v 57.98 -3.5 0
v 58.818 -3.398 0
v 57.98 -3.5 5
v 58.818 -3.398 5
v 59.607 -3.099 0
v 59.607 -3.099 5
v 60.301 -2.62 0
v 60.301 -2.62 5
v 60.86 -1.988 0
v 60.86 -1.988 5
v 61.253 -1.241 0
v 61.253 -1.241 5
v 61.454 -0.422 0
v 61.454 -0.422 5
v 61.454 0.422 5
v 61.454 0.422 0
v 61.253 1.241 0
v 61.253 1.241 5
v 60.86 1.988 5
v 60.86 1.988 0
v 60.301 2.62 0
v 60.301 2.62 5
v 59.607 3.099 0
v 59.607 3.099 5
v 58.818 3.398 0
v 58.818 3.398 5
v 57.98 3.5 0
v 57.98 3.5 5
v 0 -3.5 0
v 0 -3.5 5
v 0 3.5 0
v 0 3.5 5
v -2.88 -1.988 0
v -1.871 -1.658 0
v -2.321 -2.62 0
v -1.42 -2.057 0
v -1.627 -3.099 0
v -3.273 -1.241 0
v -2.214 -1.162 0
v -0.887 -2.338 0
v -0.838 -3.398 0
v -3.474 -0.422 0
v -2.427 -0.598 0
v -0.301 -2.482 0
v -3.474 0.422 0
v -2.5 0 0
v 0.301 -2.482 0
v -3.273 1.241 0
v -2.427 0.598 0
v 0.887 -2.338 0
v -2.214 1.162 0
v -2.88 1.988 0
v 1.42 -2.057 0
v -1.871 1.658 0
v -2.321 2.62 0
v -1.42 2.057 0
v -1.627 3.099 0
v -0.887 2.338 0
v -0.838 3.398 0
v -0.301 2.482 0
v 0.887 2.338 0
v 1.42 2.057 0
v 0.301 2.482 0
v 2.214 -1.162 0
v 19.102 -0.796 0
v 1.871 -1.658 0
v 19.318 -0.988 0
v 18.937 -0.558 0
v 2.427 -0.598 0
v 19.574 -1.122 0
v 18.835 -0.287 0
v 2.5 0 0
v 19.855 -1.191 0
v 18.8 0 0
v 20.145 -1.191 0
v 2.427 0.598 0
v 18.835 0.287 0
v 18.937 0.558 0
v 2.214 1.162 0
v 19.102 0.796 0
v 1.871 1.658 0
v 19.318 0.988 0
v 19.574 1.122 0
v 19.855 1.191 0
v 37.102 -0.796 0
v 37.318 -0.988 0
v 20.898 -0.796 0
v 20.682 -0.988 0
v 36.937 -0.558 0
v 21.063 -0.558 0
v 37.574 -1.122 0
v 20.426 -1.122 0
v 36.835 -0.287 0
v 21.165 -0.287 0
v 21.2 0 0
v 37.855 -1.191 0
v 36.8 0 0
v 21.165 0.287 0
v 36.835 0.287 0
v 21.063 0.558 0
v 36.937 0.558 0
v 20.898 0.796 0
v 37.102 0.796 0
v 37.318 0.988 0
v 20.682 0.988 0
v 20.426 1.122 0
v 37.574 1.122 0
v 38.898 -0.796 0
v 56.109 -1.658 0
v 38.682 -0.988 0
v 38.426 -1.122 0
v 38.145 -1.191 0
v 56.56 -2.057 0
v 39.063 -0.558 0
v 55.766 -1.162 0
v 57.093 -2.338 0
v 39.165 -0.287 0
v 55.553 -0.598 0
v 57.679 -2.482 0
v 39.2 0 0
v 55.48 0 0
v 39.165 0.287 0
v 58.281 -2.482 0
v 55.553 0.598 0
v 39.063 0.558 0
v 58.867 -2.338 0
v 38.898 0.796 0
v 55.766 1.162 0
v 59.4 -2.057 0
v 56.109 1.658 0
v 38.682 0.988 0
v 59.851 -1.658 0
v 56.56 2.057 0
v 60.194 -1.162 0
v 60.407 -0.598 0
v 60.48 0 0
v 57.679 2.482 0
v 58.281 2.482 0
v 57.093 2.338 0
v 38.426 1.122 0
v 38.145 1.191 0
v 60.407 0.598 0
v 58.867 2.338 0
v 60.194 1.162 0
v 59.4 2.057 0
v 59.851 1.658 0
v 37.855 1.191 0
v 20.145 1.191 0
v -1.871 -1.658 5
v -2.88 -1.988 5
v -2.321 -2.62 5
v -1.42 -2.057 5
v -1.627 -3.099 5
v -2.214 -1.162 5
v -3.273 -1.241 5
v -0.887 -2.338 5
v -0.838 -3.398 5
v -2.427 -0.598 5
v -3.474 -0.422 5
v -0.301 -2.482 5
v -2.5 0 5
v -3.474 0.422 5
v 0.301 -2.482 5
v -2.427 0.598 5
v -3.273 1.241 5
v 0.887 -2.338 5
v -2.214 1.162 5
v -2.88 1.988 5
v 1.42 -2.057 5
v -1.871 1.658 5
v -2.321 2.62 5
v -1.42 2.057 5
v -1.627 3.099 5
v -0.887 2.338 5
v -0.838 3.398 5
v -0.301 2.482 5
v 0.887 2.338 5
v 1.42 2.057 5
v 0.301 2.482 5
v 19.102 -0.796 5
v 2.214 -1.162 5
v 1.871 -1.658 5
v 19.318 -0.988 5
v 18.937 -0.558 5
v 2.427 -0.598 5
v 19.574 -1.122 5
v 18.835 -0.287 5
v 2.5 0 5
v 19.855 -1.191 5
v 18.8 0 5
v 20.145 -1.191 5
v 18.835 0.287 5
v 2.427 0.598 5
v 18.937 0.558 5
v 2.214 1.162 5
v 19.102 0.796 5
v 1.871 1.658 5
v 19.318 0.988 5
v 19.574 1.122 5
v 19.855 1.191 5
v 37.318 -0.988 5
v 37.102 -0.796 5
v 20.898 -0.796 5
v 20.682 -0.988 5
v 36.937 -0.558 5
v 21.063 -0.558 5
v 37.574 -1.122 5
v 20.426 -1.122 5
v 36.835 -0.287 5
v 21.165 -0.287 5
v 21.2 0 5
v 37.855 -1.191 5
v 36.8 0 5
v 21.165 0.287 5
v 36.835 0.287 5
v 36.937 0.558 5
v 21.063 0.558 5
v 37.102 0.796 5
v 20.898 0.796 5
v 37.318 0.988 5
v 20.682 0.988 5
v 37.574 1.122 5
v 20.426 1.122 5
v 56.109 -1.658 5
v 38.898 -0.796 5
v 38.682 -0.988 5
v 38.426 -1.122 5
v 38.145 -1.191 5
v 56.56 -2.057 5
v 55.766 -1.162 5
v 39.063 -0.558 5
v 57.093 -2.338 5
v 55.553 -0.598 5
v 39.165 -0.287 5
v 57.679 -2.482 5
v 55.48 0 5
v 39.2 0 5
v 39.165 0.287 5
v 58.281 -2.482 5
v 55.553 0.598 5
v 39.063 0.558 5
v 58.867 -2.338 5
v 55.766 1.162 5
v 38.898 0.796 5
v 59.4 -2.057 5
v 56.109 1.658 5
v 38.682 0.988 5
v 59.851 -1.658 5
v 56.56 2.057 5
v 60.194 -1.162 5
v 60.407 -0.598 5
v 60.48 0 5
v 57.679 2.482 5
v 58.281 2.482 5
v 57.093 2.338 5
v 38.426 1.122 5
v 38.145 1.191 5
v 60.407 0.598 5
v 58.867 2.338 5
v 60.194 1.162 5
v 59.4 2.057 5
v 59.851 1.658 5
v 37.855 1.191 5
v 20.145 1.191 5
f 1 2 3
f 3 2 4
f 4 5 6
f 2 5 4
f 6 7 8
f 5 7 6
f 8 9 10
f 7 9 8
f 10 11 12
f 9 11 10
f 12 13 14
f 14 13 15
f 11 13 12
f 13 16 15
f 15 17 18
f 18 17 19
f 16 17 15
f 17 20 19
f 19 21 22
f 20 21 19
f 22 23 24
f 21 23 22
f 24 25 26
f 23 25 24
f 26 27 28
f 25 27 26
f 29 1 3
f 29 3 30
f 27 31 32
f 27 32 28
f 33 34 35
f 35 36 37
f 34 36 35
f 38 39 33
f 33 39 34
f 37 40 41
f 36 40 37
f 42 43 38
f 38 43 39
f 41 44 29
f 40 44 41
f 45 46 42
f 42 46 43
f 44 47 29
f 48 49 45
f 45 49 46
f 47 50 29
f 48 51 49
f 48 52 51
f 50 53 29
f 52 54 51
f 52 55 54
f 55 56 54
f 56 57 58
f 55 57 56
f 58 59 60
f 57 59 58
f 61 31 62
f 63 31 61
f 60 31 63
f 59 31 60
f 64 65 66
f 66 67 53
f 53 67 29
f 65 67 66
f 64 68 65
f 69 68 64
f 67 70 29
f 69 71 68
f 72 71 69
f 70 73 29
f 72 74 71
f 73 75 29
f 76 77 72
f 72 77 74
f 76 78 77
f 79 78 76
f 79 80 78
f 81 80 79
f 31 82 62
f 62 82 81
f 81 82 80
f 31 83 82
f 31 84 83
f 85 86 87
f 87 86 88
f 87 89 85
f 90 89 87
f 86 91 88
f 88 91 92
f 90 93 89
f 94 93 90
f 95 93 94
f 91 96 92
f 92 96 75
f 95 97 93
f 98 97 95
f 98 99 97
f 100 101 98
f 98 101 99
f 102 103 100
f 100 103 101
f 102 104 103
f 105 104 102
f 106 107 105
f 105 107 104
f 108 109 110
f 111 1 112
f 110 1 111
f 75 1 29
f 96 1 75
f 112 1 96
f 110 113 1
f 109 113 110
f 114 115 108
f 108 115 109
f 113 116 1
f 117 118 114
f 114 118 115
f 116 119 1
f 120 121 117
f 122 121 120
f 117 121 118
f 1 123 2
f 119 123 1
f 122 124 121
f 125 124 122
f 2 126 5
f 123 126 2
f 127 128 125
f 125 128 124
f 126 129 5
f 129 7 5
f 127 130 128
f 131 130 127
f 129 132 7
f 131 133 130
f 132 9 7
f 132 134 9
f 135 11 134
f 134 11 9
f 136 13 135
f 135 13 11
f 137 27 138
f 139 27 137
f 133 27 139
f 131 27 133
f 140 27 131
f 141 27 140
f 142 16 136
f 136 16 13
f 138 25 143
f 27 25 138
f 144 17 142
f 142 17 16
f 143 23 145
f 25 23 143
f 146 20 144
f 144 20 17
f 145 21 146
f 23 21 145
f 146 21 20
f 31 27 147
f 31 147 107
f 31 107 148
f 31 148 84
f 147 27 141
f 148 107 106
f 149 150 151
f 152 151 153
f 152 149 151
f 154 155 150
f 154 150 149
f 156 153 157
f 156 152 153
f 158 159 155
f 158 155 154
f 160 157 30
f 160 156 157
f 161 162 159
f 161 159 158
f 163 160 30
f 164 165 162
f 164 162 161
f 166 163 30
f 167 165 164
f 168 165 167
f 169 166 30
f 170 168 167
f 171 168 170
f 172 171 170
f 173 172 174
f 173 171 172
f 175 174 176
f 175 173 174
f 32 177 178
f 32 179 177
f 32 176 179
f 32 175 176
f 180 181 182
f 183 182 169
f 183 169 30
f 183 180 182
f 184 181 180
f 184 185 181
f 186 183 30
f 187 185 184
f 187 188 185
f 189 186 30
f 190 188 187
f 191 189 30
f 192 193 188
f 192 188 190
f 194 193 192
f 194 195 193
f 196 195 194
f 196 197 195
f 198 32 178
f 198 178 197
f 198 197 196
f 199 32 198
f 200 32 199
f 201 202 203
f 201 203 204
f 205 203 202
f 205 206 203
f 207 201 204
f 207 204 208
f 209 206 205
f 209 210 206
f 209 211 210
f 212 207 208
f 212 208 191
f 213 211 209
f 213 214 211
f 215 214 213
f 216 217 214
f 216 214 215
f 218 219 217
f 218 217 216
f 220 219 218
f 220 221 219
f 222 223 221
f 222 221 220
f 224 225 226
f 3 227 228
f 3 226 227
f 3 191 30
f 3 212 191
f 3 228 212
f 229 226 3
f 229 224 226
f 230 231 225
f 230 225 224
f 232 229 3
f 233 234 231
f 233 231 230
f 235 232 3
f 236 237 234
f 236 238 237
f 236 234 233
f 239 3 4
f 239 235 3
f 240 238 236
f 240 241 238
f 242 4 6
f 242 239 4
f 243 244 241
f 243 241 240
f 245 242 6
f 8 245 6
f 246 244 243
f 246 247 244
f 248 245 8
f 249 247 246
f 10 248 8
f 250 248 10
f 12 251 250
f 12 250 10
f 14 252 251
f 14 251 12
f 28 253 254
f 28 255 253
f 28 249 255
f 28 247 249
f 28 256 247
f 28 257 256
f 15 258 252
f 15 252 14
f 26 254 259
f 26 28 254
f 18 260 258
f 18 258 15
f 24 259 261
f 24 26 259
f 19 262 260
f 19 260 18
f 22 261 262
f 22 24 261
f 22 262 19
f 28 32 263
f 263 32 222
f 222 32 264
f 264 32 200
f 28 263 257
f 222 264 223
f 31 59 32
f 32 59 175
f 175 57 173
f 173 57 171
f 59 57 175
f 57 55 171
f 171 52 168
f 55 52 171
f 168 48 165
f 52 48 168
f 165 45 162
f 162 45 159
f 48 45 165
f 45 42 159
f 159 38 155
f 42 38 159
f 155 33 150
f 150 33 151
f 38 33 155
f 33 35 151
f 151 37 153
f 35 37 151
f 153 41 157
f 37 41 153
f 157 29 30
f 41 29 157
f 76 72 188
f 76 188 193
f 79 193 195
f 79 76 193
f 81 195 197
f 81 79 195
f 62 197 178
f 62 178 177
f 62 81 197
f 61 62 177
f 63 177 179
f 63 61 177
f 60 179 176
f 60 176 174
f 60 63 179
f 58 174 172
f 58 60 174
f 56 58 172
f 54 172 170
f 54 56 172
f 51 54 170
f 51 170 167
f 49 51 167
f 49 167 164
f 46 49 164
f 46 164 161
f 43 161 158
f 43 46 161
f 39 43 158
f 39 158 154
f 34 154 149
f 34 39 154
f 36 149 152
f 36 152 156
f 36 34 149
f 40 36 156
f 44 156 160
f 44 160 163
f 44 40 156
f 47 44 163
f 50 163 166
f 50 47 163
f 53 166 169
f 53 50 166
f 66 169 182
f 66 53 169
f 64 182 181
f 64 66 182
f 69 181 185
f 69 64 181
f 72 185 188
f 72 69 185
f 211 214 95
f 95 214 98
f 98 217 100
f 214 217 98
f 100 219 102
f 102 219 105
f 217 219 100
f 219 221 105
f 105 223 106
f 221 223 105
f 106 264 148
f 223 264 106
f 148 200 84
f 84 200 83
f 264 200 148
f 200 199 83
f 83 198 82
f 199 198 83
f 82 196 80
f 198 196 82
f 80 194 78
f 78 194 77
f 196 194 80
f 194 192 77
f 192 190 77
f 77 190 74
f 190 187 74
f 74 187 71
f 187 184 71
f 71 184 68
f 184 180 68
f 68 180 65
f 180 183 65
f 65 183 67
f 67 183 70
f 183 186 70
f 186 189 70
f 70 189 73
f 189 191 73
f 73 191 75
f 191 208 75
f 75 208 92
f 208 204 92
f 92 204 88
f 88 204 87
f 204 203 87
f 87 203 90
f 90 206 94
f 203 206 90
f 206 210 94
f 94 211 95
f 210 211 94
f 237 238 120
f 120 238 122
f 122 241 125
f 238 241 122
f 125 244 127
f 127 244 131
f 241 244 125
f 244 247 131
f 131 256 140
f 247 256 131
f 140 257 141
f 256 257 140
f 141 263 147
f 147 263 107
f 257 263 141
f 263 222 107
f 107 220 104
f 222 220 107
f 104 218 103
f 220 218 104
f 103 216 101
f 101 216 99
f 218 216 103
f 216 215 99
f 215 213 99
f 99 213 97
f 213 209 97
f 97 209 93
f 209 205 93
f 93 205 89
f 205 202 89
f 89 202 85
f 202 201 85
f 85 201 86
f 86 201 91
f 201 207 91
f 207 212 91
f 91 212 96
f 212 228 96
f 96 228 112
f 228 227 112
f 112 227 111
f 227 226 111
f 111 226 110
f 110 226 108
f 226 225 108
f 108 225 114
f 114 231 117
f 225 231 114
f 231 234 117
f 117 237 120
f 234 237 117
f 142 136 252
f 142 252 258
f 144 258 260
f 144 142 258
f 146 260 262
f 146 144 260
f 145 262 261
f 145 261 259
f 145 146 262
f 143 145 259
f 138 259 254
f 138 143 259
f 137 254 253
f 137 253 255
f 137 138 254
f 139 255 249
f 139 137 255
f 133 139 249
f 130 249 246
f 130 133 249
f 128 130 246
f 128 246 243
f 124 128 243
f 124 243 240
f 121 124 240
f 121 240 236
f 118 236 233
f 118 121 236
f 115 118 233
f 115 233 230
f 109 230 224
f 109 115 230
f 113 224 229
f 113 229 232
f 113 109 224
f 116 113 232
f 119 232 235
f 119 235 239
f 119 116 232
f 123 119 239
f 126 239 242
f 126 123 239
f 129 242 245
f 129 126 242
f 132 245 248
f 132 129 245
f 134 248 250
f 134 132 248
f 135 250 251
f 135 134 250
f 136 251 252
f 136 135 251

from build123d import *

# Parameters (mm, degrees)
SKETCH_R     = 2.5
PAD_DEPTH    = 5
SKETCH002_R  = 1.2
POCKET_DEPTH = 25.001


with BuildPart() as part:
    # Sketch → Pad (new body)
    with BuildSketch(Plane.XY):
        with BuildLine():
            ThreePointArc((0, 3.5), (-3.5, 0), (0, -3.5))
            Line((57.98, -3.5), (0, -3.5))
            ThreePointArc((57.98, -3.5), (61.48, 0), (57.98, 3.5))
            Line((0, 3.5), (57.98, 3.5))
        make_face()
        Circle(SKETCH_R, mode=Mode.SUBTRACT)
        with Locations((57.98, 0)):
            Circle(SKETCH_R, mode=Mode.SUBTRACT)
    extrude(amount=PAD_DEPTH)

    # Sketch002 → Pocket (cut, through all)
    with BuildSketch(Plane.XY.offset(25)):
        with Locations((20, 0)):
            Circle(SKETCH002_R)
        with Locations((38, 0)):
            Circle(SKETCH002_R)
    extrude(amount=-POCKET_DEPTH, mode=Mode.SUBTRACT)


solid = part.part
